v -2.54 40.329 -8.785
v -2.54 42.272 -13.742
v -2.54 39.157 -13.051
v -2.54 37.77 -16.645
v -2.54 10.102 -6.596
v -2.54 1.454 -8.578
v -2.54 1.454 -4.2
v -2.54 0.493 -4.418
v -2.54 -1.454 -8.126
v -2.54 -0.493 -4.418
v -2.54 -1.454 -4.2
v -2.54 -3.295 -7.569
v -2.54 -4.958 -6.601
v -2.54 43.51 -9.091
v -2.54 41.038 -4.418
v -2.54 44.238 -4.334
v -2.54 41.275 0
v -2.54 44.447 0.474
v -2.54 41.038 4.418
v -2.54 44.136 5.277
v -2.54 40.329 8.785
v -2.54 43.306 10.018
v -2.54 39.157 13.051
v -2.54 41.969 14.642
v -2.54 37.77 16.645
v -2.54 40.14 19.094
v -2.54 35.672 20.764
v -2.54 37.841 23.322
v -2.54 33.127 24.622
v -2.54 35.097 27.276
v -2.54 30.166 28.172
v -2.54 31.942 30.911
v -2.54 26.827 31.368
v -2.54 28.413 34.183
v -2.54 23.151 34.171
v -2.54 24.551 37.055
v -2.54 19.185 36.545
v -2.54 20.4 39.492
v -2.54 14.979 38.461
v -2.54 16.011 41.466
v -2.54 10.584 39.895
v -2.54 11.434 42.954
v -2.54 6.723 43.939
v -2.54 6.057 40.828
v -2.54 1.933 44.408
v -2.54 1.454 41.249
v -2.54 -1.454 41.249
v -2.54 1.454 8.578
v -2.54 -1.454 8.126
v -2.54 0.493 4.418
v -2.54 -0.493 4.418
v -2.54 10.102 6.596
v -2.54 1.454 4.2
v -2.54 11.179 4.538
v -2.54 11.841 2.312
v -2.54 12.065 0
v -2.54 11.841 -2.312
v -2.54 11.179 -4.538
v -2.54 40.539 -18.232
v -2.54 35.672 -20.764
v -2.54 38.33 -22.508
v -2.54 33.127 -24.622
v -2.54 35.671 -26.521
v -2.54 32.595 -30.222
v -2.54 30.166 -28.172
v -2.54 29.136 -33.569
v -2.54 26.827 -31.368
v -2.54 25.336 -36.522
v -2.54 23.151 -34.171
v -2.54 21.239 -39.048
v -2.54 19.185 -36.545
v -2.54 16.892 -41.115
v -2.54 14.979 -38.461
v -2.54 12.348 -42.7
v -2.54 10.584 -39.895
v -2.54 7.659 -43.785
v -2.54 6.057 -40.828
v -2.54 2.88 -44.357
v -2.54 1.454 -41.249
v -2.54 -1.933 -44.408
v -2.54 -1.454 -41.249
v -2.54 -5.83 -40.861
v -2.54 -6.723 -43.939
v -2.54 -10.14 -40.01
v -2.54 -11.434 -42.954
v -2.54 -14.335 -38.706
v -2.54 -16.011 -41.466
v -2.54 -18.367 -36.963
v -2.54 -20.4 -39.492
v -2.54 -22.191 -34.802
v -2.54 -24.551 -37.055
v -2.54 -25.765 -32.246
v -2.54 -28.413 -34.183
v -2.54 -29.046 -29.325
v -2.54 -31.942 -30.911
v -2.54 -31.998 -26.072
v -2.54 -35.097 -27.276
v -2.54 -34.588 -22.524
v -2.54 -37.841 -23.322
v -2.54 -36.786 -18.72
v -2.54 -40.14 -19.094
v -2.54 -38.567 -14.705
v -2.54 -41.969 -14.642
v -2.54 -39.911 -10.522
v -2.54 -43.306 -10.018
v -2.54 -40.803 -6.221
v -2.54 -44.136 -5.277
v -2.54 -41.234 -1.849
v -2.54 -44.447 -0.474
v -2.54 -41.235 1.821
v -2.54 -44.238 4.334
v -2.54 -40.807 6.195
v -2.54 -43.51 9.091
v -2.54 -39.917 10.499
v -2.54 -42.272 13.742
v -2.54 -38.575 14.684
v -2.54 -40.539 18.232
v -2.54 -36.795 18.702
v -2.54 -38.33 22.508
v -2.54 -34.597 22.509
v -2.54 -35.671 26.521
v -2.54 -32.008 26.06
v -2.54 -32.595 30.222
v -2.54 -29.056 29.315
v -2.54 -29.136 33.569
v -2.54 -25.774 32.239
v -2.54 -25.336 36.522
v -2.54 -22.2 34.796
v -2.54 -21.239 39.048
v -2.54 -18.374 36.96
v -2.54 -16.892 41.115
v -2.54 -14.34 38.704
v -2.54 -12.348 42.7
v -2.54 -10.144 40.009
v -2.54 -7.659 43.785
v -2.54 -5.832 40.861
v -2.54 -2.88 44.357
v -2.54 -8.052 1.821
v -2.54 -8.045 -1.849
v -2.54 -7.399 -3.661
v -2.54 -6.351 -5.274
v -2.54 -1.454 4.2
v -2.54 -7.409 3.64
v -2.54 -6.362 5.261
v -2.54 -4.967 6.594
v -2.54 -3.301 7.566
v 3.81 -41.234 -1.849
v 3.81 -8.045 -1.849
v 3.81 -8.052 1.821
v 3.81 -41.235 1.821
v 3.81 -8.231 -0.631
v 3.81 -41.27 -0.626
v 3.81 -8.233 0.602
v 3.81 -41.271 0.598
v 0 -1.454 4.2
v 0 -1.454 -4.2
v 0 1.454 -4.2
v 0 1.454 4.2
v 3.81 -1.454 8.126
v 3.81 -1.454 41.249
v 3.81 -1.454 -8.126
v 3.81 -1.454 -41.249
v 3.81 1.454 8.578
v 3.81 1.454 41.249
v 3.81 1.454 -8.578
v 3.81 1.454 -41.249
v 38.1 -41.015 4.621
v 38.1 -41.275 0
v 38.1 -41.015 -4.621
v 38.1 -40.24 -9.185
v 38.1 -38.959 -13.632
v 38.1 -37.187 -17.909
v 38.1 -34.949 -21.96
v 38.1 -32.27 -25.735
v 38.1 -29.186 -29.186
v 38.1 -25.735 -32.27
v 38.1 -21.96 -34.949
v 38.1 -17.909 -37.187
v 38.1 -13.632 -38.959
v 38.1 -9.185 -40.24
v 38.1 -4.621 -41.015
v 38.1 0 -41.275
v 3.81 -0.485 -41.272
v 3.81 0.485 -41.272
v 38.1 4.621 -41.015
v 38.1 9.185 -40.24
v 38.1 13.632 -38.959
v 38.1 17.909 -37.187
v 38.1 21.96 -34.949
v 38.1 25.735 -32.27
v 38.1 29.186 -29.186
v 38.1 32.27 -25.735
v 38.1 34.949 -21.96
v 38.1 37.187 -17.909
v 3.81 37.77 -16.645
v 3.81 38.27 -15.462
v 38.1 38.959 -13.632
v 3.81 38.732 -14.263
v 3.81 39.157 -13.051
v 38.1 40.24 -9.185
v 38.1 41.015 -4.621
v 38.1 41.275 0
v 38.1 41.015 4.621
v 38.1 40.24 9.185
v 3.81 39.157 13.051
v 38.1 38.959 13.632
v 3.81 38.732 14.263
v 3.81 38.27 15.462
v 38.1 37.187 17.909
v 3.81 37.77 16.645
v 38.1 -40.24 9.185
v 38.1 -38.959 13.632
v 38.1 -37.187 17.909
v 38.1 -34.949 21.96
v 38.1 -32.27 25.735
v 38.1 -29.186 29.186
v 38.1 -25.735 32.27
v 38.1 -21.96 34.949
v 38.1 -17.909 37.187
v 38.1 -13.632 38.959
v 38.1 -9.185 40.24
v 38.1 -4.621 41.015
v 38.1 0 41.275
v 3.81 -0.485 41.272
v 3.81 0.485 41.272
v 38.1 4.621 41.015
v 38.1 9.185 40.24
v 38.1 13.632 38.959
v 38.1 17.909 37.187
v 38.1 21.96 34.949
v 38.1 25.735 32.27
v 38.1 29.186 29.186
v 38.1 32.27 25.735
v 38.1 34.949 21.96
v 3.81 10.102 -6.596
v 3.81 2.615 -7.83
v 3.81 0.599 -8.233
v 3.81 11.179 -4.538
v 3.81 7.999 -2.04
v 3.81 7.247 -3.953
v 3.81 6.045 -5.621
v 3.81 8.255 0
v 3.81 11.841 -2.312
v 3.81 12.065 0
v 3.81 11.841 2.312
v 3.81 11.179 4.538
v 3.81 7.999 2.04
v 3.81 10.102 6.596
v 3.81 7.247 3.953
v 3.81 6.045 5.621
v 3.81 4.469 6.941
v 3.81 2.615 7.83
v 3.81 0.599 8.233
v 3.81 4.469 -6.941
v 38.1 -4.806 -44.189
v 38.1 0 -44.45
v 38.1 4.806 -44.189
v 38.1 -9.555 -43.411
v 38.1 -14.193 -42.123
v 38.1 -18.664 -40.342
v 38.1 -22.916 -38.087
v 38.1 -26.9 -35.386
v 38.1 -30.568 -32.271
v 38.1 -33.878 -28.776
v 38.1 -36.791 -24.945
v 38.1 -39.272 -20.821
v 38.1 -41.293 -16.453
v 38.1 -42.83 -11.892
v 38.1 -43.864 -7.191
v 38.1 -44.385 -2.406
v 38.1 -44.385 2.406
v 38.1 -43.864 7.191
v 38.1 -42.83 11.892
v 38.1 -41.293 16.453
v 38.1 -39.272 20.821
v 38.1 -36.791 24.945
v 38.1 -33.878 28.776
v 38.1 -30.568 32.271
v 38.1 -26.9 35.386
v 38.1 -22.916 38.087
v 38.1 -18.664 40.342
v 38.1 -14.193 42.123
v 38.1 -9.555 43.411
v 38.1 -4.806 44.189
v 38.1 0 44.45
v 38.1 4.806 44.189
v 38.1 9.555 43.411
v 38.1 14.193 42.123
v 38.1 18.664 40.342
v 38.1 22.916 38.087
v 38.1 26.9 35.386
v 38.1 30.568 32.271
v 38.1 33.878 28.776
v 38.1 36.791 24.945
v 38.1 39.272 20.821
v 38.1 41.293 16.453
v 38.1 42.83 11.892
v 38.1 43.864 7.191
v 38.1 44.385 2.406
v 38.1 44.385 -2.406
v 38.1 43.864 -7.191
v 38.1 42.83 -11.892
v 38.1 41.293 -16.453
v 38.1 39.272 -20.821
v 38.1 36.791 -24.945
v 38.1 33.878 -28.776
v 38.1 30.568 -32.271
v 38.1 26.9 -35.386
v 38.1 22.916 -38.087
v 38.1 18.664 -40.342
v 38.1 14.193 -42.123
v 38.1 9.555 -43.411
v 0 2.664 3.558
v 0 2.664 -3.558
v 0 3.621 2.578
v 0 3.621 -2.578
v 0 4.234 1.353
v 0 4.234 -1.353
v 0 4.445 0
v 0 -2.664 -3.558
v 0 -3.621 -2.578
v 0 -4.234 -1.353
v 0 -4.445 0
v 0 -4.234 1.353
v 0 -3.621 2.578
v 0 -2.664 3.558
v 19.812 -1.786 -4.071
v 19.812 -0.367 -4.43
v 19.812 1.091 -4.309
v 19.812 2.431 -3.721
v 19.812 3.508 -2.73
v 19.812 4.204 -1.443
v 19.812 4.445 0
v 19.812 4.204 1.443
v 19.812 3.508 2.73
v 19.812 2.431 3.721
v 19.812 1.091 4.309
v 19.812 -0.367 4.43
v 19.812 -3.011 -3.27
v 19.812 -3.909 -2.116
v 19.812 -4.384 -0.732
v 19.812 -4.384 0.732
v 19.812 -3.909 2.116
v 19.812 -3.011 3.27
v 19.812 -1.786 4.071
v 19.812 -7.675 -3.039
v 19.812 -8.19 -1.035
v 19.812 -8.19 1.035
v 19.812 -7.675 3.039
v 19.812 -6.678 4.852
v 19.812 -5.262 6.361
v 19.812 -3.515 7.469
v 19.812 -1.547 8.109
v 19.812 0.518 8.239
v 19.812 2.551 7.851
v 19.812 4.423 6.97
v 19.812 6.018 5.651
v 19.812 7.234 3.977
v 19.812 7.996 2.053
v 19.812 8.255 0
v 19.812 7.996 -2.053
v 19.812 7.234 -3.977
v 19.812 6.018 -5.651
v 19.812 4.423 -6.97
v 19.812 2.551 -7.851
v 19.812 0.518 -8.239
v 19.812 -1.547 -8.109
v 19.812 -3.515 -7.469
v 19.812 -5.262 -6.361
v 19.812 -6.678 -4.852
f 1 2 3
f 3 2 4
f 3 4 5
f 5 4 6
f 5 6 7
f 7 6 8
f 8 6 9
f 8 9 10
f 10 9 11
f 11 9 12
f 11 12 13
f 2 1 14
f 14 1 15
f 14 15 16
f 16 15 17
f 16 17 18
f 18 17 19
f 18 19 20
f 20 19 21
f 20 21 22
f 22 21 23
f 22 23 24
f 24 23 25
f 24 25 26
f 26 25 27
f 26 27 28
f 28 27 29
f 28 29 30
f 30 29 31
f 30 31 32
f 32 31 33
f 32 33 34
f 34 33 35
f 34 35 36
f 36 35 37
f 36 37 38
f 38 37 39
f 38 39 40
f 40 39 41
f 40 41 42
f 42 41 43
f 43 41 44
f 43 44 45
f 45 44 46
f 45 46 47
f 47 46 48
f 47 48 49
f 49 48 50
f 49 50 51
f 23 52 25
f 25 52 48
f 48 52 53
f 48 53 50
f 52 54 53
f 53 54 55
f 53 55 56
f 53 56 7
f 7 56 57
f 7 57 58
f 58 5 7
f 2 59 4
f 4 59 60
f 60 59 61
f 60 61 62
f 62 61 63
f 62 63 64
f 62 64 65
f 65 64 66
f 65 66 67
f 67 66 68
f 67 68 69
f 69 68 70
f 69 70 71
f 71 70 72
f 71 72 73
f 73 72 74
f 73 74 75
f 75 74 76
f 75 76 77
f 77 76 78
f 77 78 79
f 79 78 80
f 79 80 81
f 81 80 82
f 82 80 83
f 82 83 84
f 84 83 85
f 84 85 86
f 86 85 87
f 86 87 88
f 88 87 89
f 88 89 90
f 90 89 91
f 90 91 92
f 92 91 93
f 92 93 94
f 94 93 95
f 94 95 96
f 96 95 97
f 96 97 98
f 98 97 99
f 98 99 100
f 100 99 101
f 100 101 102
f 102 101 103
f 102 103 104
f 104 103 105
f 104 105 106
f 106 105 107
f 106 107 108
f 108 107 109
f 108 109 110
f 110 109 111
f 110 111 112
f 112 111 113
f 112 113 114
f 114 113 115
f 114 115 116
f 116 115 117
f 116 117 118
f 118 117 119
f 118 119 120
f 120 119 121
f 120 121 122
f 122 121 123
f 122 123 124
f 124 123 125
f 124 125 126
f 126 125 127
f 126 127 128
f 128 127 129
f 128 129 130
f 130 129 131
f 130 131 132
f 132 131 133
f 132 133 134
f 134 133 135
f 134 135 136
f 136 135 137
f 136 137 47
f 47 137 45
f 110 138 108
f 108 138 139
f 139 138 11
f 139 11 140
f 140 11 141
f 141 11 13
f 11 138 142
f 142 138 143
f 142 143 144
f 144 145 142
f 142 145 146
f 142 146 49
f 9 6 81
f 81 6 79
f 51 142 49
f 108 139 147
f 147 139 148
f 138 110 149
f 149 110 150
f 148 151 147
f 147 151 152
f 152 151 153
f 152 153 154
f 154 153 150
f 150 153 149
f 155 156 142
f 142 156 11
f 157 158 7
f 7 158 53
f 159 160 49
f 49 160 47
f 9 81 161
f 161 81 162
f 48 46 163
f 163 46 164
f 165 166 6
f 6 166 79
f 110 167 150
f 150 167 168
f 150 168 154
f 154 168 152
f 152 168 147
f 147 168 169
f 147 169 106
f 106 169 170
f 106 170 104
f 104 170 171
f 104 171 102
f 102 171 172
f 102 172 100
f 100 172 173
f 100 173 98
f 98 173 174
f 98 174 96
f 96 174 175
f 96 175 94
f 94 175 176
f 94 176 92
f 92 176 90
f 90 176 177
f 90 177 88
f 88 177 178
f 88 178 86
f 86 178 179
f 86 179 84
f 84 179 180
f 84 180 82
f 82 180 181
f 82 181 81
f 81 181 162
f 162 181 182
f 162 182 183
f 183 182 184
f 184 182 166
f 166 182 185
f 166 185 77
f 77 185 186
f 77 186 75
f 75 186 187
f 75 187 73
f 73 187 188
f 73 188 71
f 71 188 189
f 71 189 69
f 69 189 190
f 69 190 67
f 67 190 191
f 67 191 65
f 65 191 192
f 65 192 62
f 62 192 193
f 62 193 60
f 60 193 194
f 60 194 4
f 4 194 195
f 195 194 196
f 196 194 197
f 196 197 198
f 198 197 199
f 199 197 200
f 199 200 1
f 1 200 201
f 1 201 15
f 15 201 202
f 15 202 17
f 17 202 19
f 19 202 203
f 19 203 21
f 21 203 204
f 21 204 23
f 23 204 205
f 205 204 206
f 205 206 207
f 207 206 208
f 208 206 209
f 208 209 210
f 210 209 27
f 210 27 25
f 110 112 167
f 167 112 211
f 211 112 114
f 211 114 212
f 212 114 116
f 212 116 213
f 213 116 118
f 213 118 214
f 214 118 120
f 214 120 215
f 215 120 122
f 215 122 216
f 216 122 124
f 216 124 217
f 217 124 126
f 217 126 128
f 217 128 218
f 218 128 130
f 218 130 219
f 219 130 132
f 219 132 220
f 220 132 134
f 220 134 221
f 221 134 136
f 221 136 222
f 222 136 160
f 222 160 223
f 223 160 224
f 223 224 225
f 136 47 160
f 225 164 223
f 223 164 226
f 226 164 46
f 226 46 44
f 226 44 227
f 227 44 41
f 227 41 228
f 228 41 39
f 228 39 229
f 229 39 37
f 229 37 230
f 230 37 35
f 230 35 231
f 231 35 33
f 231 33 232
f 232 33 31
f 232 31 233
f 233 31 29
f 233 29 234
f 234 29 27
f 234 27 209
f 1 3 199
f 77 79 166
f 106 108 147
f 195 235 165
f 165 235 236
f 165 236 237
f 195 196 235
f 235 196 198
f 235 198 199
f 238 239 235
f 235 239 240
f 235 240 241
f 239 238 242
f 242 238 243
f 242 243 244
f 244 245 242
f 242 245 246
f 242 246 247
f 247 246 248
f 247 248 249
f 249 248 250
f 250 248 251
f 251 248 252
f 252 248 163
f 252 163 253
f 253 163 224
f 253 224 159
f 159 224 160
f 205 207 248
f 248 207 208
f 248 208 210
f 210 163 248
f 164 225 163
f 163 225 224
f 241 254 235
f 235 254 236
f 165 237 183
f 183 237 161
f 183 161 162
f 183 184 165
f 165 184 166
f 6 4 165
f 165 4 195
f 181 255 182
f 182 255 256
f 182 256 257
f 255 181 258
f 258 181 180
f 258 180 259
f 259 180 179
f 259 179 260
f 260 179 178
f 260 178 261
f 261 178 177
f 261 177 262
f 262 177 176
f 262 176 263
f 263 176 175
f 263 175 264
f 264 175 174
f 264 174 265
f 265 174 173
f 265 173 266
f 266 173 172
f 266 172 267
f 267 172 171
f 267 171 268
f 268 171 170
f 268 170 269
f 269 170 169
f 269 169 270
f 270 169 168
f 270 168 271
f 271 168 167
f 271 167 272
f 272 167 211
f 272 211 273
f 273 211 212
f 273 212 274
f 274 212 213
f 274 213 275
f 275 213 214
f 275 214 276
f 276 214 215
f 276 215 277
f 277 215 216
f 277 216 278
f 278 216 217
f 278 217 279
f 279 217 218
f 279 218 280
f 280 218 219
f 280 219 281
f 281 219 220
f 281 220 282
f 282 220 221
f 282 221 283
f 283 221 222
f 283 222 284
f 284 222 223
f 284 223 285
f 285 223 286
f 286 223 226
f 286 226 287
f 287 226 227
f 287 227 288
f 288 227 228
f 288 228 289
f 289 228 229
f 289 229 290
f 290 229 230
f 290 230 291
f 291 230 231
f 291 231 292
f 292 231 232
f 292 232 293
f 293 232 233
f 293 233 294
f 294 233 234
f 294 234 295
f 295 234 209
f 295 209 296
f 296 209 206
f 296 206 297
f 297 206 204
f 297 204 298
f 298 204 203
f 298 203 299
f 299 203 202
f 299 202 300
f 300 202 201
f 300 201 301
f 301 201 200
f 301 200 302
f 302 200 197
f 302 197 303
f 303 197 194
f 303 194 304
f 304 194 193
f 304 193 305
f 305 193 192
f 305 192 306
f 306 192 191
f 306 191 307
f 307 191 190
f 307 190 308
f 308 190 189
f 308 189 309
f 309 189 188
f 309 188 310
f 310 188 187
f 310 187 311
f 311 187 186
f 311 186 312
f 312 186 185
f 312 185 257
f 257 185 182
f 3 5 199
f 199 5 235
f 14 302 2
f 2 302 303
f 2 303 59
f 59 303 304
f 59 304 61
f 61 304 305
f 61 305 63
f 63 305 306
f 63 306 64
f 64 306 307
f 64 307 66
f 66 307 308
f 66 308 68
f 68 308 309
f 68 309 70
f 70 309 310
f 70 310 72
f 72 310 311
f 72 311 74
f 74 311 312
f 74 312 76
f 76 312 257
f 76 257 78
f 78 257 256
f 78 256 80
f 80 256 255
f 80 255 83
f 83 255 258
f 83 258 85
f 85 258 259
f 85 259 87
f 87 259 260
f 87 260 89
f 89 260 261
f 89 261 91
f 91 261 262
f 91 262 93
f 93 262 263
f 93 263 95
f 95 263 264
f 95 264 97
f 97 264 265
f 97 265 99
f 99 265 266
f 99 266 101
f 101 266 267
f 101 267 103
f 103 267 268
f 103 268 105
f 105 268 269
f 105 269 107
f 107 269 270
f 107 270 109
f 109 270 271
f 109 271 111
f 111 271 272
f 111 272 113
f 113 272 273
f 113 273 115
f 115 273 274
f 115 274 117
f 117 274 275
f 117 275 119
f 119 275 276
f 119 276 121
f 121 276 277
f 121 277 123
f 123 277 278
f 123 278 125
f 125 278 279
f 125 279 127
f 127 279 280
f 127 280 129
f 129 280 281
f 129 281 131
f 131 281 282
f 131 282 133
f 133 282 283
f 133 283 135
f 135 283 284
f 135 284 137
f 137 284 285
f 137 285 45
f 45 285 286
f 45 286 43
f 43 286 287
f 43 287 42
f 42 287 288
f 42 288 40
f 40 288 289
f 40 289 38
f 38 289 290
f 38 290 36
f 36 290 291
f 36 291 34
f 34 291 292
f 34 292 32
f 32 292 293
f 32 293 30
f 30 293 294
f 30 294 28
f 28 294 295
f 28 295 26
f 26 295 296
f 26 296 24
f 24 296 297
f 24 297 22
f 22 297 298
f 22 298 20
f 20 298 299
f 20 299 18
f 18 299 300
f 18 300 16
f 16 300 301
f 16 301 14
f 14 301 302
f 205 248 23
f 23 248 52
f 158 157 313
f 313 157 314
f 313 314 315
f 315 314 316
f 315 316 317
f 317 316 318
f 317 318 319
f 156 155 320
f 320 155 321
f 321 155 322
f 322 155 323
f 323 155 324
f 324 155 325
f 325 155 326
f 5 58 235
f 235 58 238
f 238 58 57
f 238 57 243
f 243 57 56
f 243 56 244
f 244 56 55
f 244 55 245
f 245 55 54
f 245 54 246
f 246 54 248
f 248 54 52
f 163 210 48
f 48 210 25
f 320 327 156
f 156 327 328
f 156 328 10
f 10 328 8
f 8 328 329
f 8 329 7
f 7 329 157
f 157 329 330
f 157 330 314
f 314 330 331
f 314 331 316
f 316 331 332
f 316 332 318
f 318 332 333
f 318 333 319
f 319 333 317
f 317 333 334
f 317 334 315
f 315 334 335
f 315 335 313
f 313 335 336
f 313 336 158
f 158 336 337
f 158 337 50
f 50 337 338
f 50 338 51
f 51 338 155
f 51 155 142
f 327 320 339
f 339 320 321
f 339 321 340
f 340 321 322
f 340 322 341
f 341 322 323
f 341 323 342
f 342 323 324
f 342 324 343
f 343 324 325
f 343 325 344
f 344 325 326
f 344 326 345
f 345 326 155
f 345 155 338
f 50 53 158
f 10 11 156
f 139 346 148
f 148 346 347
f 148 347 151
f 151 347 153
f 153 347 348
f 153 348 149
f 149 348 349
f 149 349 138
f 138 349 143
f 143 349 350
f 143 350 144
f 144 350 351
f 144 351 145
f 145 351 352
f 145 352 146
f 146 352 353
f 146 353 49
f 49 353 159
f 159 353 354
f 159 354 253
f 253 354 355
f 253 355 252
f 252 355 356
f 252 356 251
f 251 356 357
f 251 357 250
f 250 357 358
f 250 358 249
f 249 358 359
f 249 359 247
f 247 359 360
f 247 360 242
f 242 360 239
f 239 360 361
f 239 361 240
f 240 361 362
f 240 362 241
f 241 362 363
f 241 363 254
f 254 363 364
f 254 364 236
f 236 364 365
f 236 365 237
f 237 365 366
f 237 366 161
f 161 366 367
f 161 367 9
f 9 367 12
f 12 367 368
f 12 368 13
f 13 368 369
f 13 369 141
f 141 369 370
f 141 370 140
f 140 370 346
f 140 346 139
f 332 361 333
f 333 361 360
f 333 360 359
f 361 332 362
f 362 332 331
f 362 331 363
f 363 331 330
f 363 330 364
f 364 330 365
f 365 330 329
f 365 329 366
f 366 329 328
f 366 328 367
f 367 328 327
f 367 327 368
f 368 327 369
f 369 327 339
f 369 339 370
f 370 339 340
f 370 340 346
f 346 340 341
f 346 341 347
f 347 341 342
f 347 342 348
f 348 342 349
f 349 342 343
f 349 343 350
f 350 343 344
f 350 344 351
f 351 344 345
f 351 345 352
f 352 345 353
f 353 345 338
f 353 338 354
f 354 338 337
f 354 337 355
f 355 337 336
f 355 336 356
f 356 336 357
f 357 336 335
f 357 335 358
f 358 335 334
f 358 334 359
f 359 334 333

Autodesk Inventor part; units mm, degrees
ref_plane "YZ Plane" through (0, 0, 0) normal (1, 0, 0) x (0, 1, 0)
ref_plane "XZ Plane" through (0, 0, 0) normal (0, 1, 0) x (-1, 0, 0)
ref_plane "XY Plane" through (0, 0, 0) normal (0, 0, 1) x (1, 0, 0)
sketch "Sketch1" plane through (0, 0, 0) normal (1, 0, 0) x (0, 1, 0)
  circle A0 centre (0, 0) radius 4.445
  circle A1 centre (0, 0) radius 8.255
  dimension "d0" = 8.89
  dimension "d1" = 3.81
extrude "Extrusion1" add sketch "Sketch1" along normal blind 19.812
sketch "Sketch2" plane through (0, 0, 0) normal (-1, 0, 0) x (0, 0, 1)
  circle A0 centre (0, 0) radius 8.255
  circle A1 centre (0, 0) radius 7.747
  circle A2 centre (0, 0) radius 8.255 projected
  dimension "d42" = 0
extrude "Extrusion2" add sketch "Sketch2" along normal blind 2.54 contours A0 | A1
sketch "Sketch3" plane through (-2.54, 0, 0) normal (-1, 0, 0) x (0, 0, 1)
  line L0 (19.05, 48.5955) -> (-19.05, 48.5955)
  circle A0 centre (0, 0) radius 8.255 projected
  line L1 (8.255, 0) -> (19.05, 48.5955)
  line L2 (-8.255, 0) -> (-19.05, 48.5955)
  arc A1 (8.255, 0) -> (-8.255, 0) centre (0, 0) ccw
  line L3 (-14.3008, 44.7855) -> (14.3008, 44.7855)
  line L4 (14.3008, 44.7855) -> (6.5962, 10.1022)
  arc A2 (6.5962, 10.1022) -> (-6.5962, 10.1022) centre (0, 0) ccw
  line L5 (-6.5962, 10.1022) -> (-14.3008, 44.7855)
  dimension "d6" = 38.1
  dimension "d7" = 19.05
  dimension "d8" = 3.81
extrude "Extrusion3" add sketch "Sketch3" against normal blind 6.35 contours L1 A0 L2 L0
sketch "Sketch6" plane through (-2.54, 44.7855, -14.3008) normal (0, -1, 0) x (1, 0, 0)
  line L0 (6.35, 32.4159) -> (26.9875, 32.4159) projected
  line L1 (13.4874, 32.4159) -> (13.4874, 26.0989)
  line L2 (26.9875, 32.4159) -> (26.9875, -3.9117) projected
  point P0 (2.54, 14.3008)
  dimension "d20" = 13.5001
sketch "Sketch10" plane through (0, 0, 0) normal (1, 0, 0) x (0, 0, -1)
  circle A0 centre (0, 0) radius 1.4542
  line L0 (-4.445, 1.4542) -> (4.445, 1.4542)
  line L1 (4.445, 1.4542) -> (4.445, -1.4542)
  line L2 (4.445, -1.4542) -> (-4.445, -1.4542)
  line L3 (-4.445, -1.4542) -> (-4.445, 1.4542)
  circle A1 centre (0, 0) radius 4.445 projected
  dimension "d43" = 0
  dimension "d44" = 0
extrude "Extrusion7" cut sketch "Sketch10" against normal blind 22.225 contours A0 | A0 L0 A1 L2 | A0 L2 A1 L0 | A1 L3 L0 | L0 L1 A1 | A1 L1 L2 | L2 L3 A1
sketch "Sketch14" plane through (0, 0, 0) normal (-1, 0, 0) x (0, 0, 1)
  arc A0 (4.2004, -1.4542) -> (4.445, 0) centre (0, 0) ccw projected
  line L0 (4.2004, -1.4542) -> (4.445, -1.4542) projected
  line L1 (4.445, -1.4542) -> (4.445, 0) projected
  arc A1 (4.445, 0) -> (4.2004, 1.4542) centre (0, 0) ccw projected
  line L2 (4.445, 0) -> (4.445, 1.4542) projected
  line L3 (4.445, 1.4542) -> (4.2004, 1.4542) projected
  arc A2 (-4.445, 0) -> (-4.2004, -1.4542) centre (0, 0) ccw projected
  line L4 (-4.445, 0) -> (-4.445, -1.4542) projected
  line L5 (-4.445, -1.4542) -> (-4.2004, -1.4542) projected
  arc A3 (-4.2004, 1.4542) -> (-4.445, 0) centre (0, 0) ccw projected
  line L6 (-4.2004, 1.4542) -> (-4.445, 1.4542) projected
  line L7 (-4.445, 1.4542) -> (-4.445, 0) projected
extrude "Extrusion10" add sketch "Sketch14" along normal blind 2.54
sketch "Sketch15" plane through (-2.54, 0, 0) normal (-1, 0, 0) x (0, 0, 1)
  circle A0 centre (0, 0) radius 41.275
  circle A1 centre (0, 0) radius 44.45
  dimension "d47" = 82.55
  dimension "d48" = 88.9
extrude "Extrusion11" add sketch "Sketch15" against normal blind 2.54
sketch "Sketch16" plane through (0, 0, 0) normal (1, 0, 0) x (0, 0, -1)
  circle A0 centre (0, 0) radius 44.45
  circle A1 centre (0, 0) radius 41.275
  dimension "d51" = 82.55
extrude "Extrusion12" add sketch "Sketch16" along normal blind 38.1
sketch "Sketch19" plane through (-2.54, 0, 0) normal (-1, 0, 0) x (0, 0, 1)
  line L0 (4.2004, 1.4542) -> (-4.2004, 1.4542) projected
  arc A0 (-16.6452, 37.7699) -> (16.6452, 37.7699) centre (0, 0) ccw projected
  line L1 (-4.2004, 1.4542) -> (-41.2494, 1.4542)
  line L2 (4.2004, 1.4542) -> (41.2494, 1.4542)
  circle A1 centre (0, 0) radius 8.382
  line L3 (-4.2004, -1.4542) -> (4.2004, -1.4542)
  line L4 (4.2004, 1.4542) -> (-4.2004, 1.4542)
  line L5 (-41.2494, -1.4542) -> (41.2494, -1.4542)
extrude "Extrusion14" add sketch "Sketch19" against normal blind 6.35 contours L2 A1 L5 L3 L1 L0 | L2 A0 L5 A1 | A1 L5 A0 L1
sketch "Sketch20" plane through (3.81, 0, 0) normal (1, 0, 0) x (0, 0, -1)
  arc A0 (4.2004, -1.4542) -> (4.2004, 1.4542) centre (0, 0) ccw projected
  line L0 (4.2004, 1.4542) -> (-4.2004, 1.4542) projected
  arc A1 (-4.2004, 1.4542) -> (-4.2004, -1.4542) centre (0, 0) ccw projected
  line L1 (-4.2004, -1.4542) -> (4.2004, -1.4542) projected
extrude "Extrusion15" cut sketch "Sketch20" against normal blind 6.35
sketch "Sketch21" plane through (-2.54, 0, 0) normal (-1, 0, 0) x (0, 0, 1)
  arc A0 (-8.1259, -1.4542) -> (8.1259, -1.4542) centre (0, 0) ccw projected
  line L0 (1.8212, -8.0516) -> (1.8212, -41.2348)
  arc A1 (-41.2494, -1.4542) -> (41.2494, -1.4542) centre (0, 0) ccw projected
  line L1 (-1.8492, -41.2336) -> (-1.8492, -8.1755)
  arc A2 (-1.8492, -41.2336) -> (1.8212, -41.2348) centre (0, 0) ccw
  circle A3 centre (0, 0) radius 8.255 projected
  arc A4 (-1.8492, -8.0452) -> (1.8212, -8.0516) centre (0, 0) ccw
  line L2 (-1.8492, -8.1755) -> (-1.8492, -8.0452)
extrude "Extrusion16" add sketch "Sketch21" against normal blind 6.35 contours A0 L0 A1 L1 L2
sketch "Sketch24" plane through (38.1, 0, 0) normal (1, 0, 0) x (0, 0, -1)
  circle A0 centre (0, 0) radius 53.866
  circle A1 centre (0, 0) radius 44.45
extrude "Extrusion18" cut sketch "Sketch24" against normal blind 61.9125
properties part number "Lift motor v2[FINAL]"
